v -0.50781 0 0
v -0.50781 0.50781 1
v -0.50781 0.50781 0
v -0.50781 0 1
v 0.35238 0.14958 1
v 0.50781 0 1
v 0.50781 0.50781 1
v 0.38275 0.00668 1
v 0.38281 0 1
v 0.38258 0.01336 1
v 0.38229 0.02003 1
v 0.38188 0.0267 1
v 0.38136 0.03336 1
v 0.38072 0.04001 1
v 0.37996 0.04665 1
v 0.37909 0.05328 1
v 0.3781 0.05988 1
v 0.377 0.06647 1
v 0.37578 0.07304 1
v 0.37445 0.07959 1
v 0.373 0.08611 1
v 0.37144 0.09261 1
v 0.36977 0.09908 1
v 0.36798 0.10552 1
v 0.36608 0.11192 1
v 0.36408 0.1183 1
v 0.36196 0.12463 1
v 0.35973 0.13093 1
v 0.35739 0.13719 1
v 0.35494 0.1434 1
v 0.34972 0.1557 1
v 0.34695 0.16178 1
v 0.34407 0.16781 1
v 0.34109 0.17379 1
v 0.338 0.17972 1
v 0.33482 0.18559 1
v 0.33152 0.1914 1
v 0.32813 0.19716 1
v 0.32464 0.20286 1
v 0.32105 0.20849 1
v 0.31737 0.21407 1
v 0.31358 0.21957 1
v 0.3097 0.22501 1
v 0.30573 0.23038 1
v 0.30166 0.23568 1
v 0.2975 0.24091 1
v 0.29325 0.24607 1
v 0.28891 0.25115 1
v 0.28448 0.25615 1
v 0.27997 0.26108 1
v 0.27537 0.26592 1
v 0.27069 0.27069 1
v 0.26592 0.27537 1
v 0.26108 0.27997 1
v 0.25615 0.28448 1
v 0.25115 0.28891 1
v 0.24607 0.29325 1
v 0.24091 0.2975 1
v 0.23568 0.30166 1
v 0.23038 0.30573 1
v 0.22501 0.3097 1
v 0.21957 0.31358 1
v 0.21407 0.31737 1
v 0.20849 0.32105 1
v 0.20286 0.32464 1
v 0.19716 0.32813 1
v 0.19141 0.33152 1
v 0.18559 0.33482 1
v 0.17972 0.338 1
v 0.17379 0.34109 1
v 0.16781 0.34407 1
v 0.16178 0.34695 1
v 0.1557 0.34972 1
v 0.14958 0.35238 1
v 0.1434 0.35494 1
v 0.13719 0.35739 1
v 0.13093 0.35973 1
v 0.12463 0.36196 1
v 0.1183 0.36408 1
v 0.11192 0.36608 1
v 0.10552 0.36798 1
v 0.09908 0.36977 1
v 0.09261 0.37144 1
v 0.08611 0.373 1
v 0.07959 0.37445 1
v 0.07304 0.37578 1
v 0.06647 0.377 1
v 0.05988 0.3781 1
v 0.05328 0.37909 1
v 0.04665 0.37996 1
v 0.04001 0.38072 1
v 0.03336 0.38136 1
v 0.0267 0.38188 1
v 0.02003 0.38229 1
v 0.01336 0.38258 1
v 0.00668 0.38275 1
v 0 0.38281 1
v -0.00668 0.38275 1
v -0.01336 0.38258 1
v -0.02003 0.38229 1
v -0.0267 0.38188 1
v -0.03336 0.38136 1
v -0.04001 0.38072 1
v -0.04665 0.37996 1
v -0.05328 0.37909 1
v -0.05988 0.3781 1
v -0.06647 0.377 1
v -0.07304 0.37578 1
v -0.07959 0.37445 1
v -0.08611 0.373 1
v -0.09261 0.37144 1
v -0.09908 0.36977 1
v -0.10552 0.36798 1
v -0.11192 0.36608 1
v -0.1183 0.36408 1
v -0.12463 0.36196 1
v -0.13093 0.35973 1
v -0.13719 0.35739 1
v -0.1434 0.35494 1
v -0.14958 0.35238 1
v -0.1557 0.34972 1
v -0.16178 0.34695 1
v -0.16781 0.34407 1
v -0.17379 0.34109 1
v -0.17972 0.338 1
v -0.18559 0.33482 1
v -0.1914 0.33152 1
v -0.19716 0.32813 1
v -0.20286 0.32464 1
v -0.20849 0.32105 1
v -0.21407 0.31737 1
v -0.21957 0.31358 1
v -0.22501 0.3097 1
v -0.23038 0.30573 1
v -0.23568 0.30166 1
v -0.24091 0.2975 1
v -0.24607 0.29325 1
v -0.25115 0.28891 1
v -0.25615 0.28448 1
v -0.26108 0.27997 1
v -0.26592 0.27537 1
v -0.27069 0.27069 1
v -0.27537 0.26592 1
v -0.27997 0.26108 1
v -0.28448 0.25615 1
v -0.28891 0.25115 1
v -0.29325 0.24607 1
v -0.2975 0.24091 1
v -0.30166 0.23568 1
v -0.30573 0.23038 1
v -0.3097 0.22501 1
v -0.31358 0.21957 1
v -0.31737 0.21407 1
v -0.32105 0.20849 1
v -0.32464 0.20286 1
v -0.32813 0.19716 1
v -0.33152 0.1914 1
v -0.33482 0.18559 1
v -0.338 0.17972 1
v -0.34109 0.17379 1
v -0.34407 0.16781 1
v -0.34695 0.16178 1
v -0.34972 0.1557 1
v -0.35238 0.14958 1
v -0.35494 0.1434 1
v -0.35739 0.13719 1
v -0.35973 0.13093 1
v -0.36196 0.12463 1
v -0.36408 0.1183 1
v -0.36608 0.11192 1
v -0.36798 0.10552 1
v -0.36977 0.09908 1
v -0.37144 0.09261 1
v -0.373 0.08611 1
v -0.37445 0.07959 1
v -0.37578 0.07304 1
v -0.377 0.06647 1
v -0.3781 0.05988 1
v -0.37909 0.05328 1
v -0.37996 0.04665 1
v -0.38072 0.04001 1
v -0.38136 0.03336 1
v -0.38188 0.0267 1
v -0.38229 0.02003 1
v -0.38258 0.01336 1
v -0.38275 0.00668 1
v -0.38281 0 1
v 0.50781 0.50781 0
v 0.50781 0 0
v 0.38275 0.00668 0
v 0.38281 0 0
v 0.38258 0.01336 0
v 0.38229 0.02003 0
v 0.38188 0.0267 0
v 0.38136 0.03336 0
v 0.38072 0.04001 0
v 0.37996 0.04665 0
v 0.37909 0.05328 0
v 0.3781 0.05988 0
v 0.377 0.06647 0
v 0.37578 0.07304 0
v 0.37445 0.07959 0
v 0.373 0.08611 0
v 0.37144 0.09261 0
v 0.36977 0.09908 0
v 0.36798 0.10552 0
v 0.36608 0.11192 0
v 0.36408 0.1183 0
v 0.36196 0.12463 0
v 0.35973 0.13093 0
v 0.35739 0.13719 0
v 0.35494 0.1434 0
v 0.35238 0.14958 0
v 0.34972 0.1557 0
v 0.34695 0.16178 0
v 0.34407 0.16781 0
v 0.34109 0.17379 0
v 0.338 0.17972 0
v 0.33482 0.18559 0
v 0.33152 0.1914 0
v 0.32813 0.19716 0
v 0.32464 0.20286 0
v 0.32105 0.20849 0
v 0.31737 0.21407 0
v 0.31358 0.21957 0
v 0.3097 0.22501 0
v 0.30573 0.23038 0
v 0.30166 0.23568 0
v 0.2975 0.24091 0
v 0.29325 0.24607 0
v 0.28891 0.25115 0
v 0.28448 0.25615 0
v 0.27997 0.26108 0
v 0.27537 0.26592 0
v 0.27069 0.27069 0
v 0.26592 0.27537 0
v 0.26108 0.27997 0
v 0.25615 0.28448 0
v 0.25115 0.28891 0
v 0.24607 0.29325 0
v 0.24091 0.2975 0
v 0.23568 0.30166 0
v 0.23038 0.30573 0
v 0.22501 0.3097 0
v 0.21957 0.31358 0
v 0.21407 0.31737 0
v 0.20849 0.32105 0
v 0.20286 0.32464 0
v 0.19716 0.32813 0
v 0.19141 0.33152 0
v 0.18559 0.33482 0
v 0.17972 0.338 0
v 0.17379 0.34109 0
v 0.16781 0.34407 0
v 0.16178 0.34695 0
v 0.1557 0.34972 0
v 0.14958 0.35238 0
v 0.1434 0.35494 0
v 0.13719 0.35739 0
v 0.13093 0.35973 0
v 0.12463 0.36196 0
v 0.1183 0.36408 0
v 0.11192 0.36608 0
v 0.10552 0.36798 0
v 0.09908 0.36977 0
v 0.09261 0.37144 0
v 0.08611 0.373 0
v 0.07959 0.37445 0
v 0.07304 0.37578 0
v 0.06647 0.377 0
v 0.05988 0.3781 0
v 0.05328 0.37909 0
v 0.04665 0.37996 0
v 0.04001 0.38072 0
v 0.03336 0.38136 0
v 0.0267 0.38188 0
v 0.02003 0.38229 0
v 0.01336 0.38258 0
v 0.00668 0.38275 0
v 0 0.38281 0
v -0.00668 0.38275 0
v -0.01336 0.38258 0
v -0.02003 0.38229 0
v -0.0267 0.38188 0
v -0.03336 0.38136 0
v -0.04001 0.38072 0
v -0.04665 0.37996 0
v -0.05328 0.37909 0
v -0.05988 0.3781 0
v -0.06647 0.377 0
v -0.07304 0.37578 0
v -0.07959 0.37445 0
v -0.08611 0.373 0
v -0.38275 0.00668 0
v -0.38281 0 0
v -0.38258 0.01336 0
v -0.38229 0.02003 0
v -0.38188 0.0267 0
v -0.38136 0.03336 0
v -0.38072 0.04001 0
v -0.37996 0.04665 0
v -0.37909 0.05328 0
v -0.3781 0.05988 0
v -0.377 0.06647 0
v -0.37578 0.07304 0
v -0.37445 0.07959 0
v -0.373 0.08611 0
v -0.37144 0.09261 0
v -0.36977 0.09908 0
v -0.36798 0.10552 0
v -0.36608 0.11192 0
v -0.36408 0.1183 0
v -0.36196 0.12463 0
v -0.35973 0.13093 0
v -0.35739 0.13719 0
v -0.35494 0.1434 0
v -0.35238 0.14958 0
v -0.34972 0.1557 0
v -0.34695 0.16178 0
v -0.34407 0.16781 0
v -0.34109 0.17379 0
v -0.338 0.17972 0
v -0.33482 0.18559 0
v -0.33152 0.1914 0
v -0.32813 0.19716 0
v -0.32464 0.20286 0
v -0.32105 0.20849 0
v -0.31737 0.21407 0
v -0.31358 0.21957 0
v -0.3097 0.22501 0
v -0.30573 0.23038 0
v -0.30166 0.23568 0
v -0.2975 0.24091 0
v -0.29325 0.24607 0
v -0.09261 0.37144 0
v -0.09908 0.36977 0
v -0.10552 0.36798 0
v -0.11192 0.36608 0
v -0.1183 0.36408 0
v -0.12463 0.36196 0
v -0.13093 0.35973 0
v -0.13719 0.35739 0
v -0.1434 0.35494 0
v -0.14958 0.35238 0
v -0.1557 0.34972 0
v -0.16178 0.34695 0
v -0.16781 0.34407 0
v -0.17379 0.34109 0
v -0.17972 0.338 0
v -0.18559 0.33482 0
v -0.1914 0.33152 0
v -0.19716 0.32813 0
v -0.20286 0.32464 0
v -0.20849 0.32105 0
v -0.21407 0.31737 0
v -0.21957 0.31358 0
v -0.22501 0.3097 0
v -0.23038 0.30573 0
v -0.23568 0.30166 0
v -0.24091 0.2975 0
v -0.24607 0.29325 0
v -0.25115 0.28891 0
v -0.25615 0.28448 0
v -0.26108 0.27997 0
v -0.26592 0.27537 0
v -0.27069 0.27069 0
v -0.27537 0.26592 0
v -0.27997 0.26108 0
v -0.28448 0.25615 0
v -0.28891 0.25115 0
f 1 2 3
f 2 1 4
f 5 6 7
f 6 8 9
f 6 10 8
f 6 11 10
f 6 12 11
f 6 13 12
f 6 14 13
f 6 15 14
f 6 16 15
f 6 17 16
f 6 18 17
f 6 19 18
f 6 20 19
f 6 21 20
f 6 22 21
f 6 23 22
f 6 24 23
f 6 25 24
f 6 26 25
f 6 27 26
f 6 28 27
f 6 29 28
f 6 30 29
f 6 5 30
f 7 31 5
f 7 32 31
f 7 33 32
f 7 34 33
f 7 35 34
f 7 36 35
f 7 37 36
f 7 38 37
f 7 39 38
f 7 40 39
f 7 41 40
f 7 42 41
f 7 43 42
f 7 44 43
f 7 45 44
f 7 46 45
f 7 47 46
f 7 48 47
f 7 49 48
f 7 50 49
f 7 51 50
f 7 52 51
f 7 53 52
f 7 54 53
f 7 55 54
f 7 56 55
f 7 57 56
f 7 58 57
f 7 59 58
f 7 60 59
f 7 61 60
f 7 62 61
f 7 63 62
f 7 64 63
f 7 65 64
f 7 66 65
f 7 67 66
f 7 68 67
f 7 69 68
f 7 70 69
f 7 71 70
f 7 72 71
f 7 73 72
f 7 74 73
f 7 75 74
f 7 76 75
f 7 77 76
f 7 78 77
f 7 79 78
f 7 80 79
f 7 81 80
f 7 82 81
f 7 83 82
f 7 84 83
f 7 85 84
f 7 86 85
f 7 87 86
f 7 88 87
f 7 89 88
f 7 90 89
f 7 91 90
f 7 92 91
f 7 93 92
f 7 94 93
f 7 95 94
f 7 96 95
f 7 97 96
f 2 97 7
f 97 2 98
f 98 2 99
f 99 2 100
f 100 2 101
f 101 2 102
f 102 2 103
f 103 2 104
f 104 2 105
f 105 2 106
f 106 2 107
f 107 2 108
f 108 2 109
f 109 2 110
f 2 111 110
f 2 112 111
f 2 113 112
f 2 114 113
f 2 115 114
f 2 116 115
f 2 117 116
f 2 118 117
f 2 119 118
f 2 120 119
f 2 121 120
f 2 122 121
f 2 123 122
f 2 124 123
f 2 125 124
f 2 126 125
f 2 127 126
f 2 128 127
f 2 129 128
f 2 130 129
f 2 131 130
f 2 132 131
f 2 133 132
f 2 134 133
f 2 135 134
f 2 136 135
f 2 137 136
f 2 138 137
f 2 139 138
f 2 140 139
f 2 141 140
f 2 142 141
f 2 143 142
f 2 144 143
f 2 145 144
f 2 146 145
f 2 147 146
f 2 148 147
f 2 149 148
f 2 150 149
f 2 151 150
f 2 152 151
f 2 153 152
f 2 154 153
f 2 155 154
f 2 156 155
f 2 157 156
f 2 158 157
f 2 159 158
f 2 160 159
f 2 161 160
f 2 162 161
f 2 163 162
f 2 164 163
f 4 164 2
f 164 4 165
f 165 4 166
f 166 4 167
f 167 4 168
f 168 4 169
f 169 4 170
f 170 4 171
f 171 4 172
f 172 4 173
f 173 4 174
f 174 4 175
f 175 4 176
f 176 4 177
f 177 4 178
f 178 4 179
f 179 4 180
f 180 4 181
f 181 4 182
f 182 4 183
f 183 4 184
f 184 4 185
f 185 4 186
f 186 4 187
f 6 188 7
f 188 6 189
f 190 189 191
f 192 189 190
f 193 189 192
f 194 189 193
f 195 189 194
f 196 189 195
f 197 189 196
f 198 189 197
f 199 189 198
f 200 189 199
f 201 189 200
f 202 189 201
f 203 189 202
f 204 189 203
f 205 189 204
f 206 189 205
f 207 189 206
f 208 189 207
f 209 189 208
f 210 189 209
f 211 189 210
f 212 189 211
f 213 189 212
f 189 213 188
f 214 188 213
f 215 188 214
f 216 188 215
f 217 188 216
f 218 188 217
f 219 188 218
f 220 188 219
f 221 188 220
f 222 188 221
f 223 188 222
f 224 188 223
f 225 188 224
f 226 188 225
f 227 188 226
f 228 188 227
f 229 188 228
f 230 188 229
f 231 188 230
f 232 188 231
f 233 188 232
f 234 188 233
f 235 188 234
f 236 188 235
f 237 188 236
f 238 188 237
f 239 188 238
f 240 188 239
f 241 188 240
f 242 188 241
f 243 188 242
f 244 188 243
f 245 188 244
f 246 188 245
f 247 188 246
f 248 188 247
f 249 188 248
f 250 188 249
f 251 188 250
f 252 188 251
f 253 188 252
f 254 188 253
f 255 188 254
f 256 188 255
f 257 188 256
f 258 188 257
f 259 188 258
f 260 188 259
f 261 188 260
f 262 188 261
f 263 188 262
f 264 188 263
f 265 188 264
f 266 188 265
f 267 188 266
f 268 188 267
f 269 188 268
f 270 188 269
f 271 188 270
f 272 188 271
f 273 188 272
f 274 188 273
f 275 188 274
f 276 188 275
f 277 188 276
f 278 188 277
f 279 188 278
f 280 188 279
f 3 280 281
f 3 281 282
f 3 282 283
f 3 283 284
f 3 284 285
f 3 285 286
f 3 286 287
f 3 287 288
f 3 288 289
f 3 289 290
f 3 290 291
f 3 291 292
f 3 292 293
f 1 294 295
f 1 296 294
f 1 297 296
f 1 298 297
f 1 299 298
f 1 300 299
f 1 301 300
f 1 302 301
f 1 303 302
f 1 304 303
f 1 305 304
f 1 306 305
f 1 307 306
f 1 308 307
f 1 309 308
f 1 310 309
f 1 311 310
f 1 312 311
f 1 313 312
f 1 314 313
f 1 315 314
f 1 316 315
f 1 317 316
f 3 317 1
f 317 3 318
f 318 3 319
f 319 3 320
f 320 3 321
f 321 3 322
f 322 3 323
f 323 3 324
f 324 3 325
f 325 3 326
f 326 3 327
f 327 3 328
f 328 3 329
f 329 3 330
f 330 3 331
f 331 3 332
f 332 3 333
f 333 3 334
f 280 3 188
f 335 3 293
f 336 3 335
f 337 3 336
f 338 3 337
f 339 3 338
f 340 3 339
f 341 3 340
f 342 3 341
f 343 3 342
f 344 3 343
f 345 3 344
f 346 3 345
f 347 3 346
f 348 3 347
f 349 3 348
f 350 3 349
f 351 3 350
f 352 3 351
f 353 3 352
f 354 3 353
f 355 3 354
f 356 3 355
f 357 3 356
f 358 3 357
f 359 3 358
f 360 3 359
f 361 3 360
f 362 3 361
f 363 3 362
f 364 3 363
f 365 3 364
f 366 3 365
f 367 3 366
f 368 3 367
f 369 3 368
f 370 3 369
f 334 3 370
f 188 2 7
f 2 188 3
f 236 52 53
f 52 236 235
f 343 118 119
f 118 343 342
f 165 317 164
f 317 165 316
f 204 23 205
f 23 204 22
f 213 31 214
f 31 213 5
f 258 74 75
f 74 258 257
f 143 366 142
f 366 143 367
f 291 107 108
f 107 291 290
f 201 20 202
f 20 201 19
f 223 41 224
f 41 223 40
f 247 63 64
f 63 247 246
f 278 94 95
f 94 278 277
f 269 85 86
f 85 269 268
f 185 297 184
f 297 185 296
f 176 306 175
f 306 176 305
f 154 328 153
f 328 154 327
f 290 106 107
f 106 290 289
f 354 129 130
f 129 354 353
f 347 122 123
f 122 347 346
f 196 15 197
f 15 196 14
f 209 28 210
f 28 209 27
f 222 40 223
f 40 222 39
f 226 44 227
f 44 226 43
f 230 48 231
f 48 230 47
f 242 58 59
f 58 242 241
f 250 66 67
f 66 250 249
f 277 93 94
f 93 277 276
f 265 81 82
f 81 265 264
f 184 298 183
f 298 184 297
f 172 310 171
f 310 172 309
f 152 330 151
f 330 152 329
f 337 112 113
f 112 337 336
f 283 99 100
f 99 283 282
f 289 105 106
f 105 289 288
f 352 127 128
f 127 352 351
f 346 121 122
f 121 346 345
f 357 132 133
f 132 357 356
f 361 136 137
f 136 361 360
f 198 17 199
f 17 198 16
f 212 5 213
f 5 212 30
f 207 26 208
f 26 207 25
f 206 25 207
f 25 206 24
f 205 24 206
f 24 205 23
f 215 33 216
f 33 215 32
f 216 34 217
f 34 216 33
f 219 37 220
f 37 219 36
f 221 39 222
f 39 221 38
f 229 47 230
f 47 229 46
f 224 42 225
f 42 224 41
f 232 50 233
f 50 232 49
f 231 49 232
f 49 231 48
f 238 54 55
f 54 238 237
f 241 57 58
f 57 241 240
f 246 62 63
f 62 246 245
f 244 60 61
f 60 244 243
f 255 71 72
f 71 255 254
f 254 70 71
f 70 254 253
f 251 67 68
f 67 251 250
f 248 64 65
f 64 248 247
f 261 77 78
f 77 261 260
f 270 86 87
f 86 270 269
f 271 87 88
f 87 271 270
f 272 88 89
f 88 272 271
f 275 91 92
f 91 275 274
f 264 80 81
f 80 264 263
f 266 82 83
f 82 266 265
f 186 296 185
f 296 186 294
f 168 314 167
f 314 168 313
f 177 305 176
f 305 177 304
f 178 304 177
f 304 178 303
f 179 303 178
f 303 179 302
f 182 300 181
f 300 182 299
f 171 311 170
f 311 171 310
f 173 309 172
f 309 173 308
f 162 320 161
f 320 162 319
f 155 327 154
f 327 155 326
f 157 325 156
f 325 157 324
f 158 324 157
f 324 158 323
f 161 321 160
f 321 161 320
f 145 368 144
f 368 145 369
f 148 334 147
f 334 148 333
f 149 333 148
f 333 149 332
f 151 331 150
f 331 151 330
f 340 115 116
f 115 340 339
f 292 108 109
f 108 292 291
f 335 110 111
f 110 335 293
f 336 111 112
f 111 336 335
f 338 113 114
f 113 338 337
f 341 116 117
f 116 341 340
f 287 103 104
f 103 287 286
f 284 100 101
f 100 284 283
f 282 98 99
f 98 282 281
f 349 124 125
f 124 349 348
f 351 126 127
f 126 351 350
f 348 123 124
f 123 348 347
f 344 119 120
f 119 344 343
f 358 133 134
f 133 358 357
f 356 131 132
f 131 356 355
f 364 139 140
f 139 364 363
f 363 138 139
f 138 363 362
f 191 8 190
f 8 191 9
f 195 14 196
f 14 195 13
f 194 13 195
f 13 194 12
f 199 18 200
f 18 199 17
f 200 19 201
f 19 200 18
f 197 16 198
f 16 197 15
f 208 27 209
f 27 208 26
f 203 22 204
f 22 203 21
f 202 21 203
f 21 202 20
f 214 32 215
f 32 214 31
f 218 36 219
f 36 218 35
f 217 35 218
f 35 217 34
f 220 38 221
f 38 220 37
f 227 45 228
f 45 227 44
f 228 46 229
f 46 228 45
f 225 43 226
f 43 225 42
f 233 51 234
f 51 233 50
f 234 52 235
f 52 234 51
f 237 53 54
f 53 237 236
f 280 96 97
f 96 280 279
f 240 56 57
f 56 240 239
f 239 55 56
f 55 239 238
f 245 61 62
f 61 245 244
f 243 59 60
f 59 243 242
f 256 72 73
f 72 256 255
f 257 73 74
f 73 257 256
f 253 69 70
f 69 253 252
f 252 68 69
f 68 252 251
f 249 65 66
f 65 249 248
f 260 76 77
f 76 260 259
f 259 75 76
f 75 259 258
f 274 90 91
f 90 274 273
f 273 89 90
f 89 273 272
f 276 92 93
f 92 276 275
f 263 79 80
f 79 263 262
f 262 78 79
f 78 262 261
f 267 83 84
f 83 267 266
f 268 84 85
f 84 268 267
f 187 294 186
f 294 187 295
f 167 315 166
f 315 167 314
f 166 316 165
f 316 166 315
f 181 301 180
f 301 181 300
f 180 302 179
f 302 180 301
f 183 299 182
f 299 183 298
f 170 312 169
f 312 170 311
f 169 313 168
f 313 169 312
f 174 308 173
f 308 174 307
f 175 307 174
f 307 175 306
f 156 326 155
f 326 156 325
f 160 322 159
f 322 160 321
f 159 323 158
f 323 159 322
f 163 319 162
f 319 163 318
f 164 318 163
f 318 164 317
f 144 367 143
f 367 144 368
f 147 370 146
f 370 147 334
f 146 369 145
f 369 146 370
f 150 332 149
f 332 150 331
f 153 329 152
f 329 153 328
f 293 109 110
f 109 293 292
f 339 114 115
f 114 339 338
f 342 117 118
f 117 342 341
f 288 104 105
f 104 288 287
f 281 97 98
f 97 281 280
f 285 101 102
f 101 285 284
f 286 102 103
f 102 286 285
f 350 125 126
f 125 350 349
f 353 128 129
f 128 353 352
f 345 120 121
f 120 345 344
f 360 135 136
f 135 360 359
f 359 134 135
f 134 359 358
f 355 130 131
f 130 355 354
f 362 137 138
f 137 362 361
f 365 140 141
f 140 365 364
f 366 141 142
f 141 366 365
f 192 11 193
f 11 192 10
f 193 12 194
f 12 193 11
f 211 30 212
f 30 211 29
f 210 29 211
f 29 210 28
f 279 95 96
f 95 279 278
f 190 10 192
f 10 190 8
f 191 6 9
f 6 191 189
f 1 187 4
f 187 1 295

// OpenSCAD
// file: dimensions.scad
// dimensions.scad - configurable dimensions for 3/4" dowel drill guides
// Andrew Ho (andrew@zeuscat.com)
//
// This file contains configurable dimensions for a jig designed to
// center and guide an 11/64" drill bit to drill a coaxial hole for a
// 1/4" shank wood screw into the end of a 3/4" hardwood dowel, and a
// 1/8" drill bit to drill a sideways hole for a #8 wood screw into the
// side of the dowel.

guide_height = 3/4;      // Height of drill guides
shaft_height = 1;        // Just how far the dowel enters into the shaft
inner_diameter = 49/64;  // Diameter of dowel (3/4" + 1/64" fudge factor)
hull_thickness = 1/8;    // Size of thinnest wall

// Interpolated values
total_height = guide_height + shaft_height;
double_hull_thickness = hull_thickness * 2;
outer_diameter = inner_diameter + double_hull_thickness;

// Draw cylinder with 1° segments in preview mode
module cylinder360(height, diameter) {
  cylinder(h = height, d = diameter, $fn = 360);
}
// main file
// support_strut.scad - support strut for 3/4" dowel drill guide
// Andrew Ho (andrew@zeuscat.com)
//
// This file contains a saddle-shaped support strut allowing a 3/4" dowel
// to be clamped along with the drill guide in drill_guide.scad.

include <dimensions.scad>;

// Prevent edge rendering artifacts in OpenSCAD preview mode
extra = 1/64;

difference() {
  // Squared off bottom, rounded top, drill guide extension
  union() {
    translate([-outer_diameter / 2, 0, 0])
      cube([outer_diameter, outer_diameter / 2, shaft_height]);
    cylinder360(shaft_height, outer_diameter);
  }

  // Shaft for dowel, cut off top
  union() {
    translate([0, 0, -extra])
      cylinder360(shaft_height + (extra * 2), inner_diameter);
    translate([-outer_diameter / 2, -outer_diameter / 2, -extra])
      cube([outer_diameter, outer_diameter / 2, shaft_height + (extra * 2)]);
  }
}
